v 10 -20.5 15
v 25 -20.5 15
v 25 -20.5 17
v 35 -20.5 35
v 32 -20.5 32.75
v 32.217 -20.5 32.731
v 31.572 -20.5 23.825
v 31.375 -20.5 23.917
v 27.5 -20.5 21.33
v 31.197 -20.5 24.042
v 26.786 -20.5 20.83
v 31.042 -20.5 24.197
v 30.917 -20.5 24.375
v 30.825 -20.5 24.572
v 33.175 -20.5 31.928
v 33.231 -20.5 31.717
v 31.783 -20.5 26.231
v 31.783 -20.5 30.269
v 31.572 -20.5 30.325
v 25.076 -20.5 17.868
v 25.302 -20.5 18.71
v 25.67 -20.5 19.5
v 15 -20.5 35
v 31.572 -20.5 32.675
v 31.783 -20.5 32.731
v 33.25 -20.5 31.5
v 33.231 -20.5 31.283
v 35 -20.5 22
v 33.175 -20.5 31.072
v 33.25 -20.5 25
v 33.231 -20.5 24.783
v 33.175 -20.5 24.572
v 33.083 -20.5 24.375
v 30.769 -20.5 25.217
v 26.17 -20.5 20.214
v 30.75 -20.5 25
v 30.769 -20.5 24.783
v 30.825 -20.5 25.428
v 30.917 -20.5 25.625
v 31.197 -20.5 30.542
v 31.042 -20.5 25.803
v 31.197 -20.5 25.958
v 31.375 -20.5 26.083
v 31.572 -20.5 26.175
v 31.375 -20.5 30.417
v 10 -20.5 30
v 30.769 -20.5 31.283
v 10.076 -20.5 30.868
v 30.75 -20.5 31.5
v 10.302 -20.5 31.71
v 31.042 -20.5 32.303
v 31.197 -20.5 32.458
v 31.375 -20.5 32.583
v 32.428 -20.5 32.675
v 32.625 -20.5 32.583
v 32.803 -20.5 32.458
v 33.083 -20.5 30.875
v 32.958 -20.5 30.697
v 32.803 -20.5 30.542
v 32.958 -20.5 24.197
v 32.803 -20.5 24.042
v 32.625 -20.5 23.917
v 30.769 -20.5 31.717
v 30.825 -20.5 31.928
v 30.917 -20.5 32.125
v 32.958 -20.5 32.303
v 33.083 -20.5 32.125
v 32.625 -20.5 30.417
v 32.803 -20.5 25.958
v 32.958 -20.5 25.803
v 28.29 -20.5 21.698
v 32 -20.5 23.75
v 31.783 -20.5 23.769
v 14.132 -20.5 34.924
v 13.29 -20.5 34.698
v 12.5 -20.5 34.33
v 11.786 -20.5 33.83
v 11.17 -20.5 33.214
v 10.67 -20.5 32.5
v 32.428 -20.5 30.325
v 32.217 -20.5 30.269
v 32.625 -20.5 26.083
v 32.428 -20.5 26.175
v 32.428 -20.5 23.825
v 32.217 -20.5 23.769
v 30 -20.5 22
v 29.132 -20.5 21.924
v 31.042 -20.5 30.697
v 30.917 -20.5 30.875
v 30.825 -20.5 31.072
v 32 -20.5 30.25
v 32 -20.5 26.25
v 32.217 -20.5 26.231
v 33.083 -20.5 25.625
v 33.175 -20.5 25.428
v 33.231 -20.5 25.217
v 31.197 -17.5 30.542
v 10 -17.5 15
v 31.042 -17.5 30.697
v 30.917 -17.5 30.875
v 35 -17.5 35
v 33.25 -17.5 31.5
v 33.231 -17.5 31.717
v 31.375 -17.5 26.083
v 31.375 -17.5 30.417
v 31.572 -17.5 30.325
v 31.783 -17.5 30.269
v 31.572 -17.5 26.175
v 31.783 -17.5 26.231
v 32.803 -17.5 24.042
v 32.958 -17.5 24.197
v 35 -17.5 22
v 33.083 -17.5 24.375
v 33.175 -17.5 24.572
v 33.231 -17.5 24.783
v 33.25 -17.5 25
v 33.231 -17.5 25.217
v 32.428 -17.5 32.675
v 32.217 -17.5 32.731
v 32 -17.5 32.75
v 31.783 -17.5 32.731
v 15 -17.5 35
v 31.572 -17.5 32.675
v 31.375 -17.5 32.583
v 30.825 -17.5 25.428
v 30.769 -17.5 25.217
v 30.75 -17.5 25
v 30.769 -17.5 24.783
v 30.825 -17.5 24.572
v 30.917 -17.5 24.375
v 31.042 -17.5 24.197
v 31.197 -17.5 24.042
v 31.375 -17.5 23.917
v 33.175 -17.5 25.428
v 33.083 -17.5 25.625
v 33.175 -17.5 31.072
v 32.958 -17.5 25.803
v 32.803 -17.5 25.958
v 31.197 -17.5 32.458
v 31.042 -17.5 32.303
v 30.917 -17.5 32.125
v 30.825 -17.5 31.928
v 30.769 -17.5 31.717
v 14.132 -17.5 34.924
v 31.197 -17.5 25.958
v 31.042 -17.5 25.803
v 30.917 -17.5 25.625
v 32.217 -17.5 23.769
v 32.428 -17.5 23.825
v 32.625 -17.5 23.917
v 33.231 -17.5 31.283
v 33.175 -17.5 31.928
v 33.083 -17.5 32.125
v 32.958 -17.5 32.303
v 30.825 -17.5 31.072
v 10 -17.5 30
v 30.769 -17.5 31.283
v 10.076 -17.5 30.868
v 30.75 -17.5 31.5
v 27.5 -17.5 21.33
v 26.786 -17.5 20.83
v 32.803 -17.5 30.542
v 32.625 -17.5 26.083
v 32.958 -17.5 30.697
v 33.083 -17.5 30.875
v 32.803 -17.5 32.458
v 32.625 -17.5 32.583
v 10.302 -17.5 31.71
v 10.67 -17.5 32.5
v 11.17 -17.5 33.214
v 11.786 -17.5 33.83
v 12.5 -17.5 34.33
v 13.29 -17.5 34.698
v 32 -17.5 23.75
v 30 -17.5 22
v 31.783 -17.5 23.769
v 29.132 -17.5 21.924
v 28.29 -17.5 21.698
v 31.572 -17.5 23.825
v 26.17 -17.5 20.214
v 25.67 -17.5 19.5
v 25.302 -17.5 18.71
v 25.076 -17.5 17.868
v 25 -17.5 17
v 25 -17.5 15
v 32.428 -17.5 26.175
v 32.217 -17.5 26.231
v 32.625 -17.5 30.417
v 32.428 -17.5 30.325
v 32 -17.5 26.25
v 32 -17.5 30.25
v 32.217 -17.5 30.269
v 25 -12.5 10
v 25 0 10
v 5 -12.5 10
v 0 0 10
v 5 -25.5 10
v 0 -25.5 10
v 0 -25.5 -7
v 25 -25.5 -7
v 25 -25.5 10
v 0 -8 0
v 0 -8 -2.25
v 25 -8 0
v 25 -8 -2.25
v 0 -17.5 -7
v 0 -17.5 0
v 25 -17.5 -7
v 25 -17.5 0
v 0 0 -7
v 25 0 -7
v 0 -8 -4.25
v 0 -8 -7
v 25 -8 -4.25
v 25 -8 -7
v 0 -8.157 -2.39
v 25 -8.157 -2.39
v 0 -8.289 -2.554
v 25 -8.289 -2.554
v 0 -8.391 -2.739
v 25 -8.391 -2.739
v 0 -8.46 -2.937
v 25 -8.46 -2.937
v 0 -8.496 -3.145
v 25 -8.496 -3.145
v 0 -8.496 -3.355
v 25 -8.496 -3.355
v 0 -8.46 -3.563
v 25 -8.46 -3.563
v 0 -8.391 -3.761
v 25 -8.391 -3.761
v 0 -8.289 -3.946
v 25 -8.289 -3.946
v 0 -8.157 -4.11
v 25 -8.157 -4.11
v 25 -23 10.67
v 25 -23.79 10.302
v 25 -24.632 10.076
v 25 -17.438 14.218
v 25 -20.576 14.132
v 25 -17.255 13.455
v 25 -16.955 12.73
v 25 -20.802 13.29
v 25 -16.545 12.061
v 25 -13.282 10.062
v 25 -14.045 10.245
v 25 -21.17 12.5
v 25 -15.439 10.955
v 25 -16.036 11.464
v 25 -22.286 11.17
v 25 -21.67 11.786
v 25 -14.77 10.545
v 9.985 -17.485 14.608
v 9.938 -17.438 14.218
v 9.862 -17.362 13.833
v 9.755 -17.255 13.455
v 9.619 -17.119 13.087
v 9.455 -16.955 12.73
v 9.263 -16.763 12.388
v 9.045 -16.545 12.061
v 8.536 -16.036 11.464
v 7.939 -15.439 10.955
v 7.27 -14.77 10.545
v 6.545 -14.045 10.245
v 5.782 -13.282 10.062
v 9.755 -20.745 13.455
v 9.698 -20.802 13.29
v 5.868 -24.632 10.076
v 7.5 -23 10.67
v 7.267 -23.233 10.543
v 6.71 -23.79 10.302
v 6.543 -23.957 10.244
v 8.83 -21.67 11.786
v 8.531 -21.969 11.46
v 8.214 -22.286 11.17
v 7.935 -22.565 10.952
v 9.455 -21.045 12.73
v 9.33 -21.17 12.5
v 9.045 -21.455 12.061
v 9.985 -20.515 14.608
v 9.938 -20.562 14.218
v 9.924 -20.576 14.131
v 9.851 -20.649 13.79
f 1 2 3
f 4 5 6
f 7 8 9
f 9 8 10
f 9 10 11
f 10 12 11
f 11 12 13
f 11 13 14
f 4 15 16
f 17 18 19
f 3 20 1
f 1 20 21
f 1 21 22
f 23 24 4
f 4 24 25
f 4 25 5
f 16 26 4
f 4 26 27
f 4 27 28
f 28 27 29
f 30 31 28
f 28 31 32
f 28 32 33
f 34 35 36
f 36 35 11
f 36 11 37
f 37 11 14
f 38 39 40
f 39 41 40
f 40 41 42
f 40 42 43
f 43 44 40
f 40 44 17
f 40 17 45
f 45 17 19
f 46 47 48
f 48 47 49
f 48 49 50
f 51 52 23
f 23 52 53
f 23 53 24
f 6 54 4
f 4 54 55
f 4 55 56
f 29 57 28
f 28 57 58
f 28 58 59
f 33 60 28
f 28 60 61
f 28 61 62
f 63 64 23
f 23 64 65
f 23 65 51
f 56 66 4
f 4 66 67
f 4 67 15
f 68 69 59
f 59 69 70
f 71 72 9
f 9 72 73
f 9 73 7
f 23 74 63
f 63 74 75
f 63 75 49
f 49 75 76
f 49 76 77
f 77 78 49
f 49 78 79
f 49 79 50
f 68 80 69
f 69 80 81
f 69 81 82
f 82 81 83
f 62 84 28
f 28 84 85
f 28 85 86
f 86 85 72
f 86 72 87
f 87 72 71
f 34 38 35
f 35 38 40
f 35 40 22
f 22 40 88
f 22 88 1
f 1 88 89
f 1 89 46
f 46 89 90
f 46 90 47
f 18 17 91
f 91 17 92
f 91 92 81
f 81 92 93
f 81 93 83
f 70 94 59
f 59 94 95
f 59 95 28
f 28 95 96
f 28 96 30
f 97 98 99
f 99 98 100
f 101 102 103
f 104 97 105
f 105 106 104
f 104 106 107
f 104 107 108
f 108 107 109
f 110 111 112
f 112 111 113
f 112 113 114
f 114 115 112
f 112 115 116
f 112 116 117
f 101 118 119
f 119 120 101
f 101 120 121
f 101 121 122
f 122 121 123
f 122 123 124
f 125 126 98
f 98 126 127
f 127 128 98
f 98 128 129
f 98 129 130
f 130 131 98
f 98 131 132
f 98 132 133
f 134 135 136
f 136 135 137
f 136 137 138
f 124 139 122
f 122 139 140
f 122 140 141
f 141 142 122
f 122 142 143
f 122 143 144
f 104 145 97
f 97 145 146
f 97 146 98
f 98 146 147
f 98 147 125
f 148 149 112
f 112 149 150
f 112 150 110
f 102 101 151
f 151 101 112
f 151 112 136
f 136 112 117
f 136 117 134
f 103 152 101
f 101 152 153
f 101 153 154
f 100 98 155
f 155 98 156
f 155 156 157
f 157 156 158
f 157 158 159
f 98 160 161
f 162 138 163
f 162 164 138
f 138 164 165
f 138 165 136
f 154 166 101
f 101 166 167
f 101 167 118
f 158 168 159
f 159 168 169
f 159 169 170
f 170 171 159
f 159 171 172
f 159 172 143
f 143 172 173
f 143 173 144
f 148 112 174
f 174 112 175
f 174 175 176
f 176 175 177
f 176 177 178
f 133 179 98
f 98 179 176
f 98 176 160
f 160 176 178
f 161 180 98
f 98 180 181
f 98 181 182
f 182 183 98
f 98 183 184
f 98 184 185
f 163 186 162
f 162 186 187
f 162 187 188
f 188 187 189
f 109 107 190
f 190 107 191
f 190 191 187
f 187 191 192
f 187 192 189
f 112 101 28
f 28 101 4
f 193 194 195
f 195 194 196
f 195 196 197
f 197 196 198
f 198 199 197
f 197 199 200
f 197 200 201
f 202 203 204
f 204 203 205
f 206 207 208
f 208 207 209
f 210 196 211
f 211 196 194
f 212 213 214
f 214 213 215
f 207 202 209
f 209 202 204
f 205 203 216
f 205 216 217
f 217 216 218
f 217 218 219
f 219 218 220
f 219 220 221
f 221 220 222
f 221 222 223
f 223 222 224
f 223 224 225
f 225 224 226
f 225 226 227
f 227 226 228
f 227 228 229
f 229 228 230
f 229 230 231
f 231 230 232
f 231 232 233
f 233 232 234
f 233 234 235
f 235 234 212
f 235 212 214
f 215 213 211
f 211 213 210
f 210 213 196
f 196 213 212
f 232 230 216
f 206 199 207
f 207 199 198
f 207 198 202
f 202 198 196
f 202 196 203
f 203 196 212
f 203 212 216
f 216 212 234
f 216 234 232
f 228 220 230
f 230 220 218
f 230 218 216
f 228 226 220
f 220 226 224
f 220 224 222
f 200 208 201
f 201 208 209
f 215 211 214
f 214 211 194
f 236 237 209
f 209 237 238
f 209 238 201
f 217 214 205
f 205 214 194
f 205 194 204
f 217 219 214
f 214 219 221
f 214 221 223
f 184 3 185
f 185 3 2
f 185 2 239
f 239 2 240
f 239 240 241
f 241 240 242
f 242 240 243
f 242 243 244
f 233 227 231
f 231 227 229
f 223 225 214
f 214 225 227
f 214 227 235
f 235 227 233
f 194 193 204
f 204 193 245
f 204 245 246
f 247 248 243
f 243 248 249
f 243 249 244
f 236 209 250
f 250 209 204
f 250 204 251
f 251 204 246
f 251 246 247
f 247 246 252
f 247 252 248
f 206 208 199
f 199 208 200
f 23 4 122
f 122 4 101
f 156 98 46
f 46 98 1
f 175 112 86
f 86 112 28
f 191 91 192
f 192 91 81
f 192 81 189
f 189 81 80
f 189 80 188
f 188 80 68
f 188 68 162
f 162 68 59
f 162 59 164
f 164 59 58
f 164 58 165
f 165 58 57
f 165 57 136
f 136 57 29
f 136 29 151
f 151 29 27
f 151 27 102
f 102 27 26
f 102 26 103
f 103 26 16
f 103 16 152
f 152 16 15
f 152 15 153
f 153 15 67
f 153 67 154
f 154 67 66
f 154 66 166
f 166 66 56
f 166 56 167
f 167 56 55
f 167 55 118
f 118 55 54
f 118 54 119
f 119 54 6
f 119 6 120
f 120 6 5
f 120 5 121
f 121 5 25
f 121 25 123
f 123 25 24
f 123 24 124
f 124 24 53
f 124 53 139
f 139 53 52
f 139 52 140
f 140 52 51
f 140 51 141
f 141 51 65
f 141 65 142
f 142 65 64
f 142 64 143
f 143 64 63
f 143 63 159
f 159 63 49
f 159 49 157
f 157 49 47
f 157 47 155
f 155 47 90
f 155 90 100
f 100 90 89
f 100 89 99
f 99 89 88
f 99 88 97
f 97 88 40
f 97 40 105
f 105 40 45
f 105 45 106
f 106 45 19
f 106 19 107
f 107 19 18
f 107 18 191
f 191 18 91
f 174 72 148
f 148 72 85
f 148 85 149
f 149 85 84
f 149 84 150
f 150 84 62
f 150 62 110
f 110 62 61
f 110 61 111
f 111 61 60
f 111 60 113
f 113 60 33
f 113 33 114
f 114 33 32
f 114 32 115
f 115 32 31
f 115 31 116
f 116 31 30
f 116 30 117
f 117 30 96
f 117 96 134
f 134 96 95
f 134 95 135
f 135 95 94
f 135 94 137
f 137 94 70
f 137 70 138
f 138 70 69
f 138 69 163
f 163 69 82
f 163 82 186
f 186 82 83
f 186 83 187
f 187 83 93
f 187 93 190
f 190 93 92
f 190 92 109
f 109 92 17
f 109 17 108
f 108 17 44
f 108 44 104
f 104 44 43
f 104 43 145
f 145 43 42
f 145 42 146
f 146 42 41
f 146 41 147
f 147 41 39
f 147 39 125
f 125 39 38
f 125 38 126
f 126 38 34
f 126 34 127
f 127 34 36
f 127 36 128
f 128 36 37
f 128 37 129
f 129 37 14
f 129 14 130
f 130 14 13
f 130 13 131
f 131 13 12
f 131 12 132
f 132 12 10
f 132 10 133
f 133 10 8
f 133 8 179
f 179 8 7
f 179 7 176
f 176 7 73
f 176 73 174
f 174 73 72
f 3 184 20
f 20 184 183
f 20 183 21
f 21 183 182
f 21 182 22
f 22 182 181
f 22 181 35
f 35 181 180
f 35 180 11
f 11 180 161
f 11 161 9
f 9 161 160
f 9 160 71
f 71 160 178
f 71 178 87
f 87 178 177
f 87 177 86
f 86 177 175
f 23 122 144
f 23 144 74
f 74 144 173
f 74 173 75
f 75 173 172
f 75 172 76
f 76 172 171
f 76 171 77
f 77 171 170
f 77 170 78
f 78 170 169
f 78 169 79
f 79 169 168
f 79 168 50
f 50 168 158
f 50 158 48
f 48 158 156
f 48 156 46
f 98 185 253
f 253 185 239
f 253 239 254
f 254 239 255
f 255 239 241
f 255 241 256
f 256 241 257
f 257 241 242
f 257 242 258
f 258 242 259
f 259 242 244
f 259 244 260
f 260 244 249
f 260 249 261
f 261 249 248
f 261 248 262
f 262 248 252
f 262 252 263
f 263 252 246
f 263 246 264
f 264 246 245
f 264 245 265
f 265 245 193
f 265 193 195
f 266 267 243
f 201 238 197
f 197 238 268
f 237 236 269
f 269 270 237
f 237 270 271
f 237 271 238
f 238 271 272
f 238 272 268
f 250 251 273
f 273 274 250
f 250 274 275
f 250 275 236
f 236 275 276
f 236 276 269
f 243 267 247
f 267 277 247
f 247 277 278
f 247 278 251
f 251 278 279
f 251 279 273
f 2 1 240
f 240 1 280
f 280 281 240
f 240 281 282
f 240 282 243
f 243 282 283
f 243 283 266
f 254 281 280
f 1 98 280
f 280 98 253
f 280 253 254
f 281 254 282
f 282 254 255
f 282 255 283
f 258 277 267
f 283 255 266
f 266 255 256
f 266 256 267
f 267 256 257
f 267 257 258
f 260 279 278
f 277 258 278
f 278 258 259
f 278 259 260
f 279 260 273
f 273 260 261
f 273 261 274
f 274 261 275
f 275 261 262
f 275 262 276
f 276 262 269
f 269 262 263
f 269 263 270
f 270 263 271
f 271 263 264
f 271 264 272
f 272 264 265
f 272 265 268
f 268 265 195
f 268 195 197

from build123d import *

# Parameters (mm, degrees)
BOSS_EXTRUDE1_DEPTH = 50
SKETCH2_W           = 7
SKETCH2_H           = 8
BOSS_EXTRUDE2_DEPTH = 50
SKETCH2_3_W         = 7
SKETCH2_3_H         = 8
BOSS_EXTRUDE3_DEPTH = 18
SKETCH3_W           = 10
SKETCH3_H           = 63
SKETCH3_W_2         = 7
SKETCH3_H_2         = 8
BOSS_EXTRUDE4_DEPTH = 82
FILLET1_R           = 5
SKETCH4_W           = 49
SKETCH4_H           = 25.5
CUT_EXTRUDE1_DEPTH  = 63
SKETCH5_W           = 25.5
SKETCH5_H           = 10
SKETCH5_H_2         = 12
BOSS_EXTRUDE5_DEPTH = 49
CUT_EXTRUDE2_DEPTH  = 25.5
SKETCH6_R           = 1.75
CUT_EXTRUDE3_DEPTH  = 5
SKETCH6_6_R         = 0.75
CUT_EXTRUDE4_DEPTH  = 15
SKETCH8_W           = 18
SKETCH8_H           = 9.5
CUT_EXTRUDE5_DEPTH  = 40
SKETCH9_W           = 40
SKETCH9_H           = 25.5
CUT_EXTRUDE6_DEPTH  = 110.982953225
SKETCH10_W          = 32
SKETCH10_H          = 88.5
CUT_EXTRUDE7_DEPTH  = 111.174861016
SKETCH11_W          = 50
SKETCH11_H          = 63
CUT_EXTRUDE8_DEPTH  = 105.797423632
SKETCH12_W          = 25.5
SKETCH12_H          = 35
BOSS_EXTRUDE7_DEPTH = 10
SKETCH12_3_R        = 10
CUT_EXTRUDE9_DEPTH  = 107.716915248
SKETCH13_W          = 42.5
SKETCH13_H          = 88.5
CUT_EXTRUDE10_DEPTH = 25
SKETCH14_W          = 25
SKETCH14_H          = 28
CUT_EXTRUDE11_DEPTH = 96.433222727
SKETCH15_W          = 25
SKETCH15_H          = 60.5
CUT_EXTRUDE12_DEPTH = 71.25311381
SKETCH16_W          = 10
SKETCH16_H          = 35
CUT_EXTRUDE13_DEPTH = 68.633201906
SKETCH17_W          = 15
SKETCH17_H          = 35
BOSS_EXTRUDE8_DEPTH = 3
BOSS_EXTRUDE9_DEPTH = 10
SKETCH19_R          = 1.25
CUT_EXTRUDE14_DEPTH = 54.574714185
FILLET4_R           = 5


with BuildPart() as part:
    # Sketch1 → Boss-Extrude1 (new body)
    with BuildSketch(Plane.XY):
        with BuildLine():
            Line((-2.25, -8), (-4.25, -8))
            ThreePointArc((-4.25, -8), (-3.25, -8.5), (-2.25, -8))
        make_face()
        Polygon((10, -25.5), (10, 0), (0, 0), (-18, 0), (-18, -8), (0, -8), (0, -17.5), (-18, -17.5), (-18, -25.5), align=None)
    extrude(amount=BOSS_EXTRUDE1_DEPTH)

    # Sketch2 → Boss-Extrude2 (add)
    with BuildSketch(Plane(origin=(0, 0, 0), x_dir=(0, 0, -1), z_dir=(1, 0, 0))):
        Polygon((7, 0), (0, 0), (0, -8), (2.25, -8), (4.25, -8), (7, -8), align=None)
        Polygon((0, -8), (0, 0), (-10, 0), (-10, -25.5), (0, -25.5), (0, -17.5), align=None)
        with Locations((3.5, -21.5)):
            Rectangle(SKETCH2_W, SKETCH2_H)
        with BuildLine():
            Line((4.25, -8), (2.25, -8))
            ThreePointArc((2.25, -8), (3.25, -8.5), (4.25, -8))
        make_face()
    extrude(amount=BOSS_EXTRUDE2_DEPTH)

    # Sketch2<3> → Boss-Extrude3 (add)
    with BuildSketch(Plane(origin=(0, 0, 0), x_dir=(0, 0, -1), z_dir=(1, 0, 0))):
        Polygon((7, 0), (0, 0), (0, -8), (2.25, -8), (4.25, -8), (7, -8), align=None)
        with Locations((3.5, -21.5)):
            Rectangle(SKETCH2_3_W, SKETCH2_3_H)
    extrude(amount=-BOSS_EXTRUDE3_DEPTH)

    # Sketch3 → Boss-Extrude4 (add)
    with BuildSketch(Plane(origin=(50, 0, 0), x_dir=(0, 0, -1), z_dir=(1, 0, 0))):
        Polygon((32.5, -17.5), (7, -17.5), (7, -25.5), (0, -25.5), (0, -88.5), (32.5, -88.5), align=None)
        with Locations((-5, -57)):
            Rectangle(SKETCH3_W, SKETCH3_H)
        with Locations((3.5, -21.5)):
            Rectangle(SKETCH3_W_2, SKETCH3_H_2)
        with Locations((-5, -21.5)):
            Rectangle(SKETCH3_W, SKETCH3_H_2)
    extrude(amount=-BOSS_EXTRUDE4_DEPTH)

    # Fillet1
    fillet1_edges = [part.edges().sort_by_distance(p)[0] for p in [
        (-32, -17.5, -11.25),
        (-32, -53, -32.5),
        (9, -17.5, -32.5),
    ]]
    fillet(fillet1_edges, radius=FILLET1_R)

    # Sketch4 → Cut-Extrude1 (cut)
    with BuildSketch(Plane.XZ.offset(88.5)):
        with Locations((25.5, -2.75)):
            Rectangle(SKETCH4_W, SKETCH4_H)
    extrude(amount=-CUT_EXTRUDE1_DEPTH, mode=Mode.SUBTRACT)

    # Sketch5 → Boss-Extrude5 (add)
    with BuildSketch(Plane(origin=(50, 0, 0), x_dir=(0, 0, -1), z_dir=(1, 0, 0))):
        with Locations((2.75, -30.5)):
            Rectangle(SKETCH5_W, SKETCH5_H)
        with Locations((2.75, -82.5)):
            Rectangle(SKETCH5_W, SKETCH5_H_2)
    extrude(amount=-BOSS_EXTRUDE5_DEPTH)

    # Sketch7 → Cut-Extrude2 (cut)
    with BuildSketch(Plane.XY.offset(10)):
        Polygon((1, -35.5), (27, -35.5), (27, -25.5), (50, -25.5), (50, -88.5), (27, -88.5), (27, -76.5), (1, -76.5), align=None)
    extrude(amount=-CUT_EXTRUDE2_DEPTH, mode=Mode.SUBTRACT)

    # Sketch6 → Cut-Extrude3 (cut)
    with BuildSketch(Plane(origin=(27, 0, 0), x_dir=(0, 0, -1), z_dir=(1, 0, 0))):
        with Locations((0.25, -81.5)):
            Circle(SKETCH6_R)
        with Locations((10.25, -81.5)):
            Circle(SKETCH6_R)
        with Locations((10.25, -32.5)):
            Circle(SKETCH6_R)
        with Locations((0.25, -32.5)):
            Circle(SKETCH6_R)
    extrude(amount=-CUT_EXTRUDE3_DEPTH, mode=Mode.SUBTRACT)

    # Sketch6<6> → Cut-Extrude4 (cut)
    with BuildSketch(Plane(origin=(27, 0, 0), x_dir=(0, 0, -1), z_dir=(1, 0, 0))):
        with Locations((0.25, -81.5)):
            Circle(SKETCH6_6_R)
        with Locations((10.25, -81.5)):
            Circle(SKETCH6_6_R)
        with Locations((10.25, -32.5)):
            Circle(SKETCH6_6_R)
        with Locations((0.25, -32.5)):
            Circle(SKETCH6_6_R)
    extrude(amount=-CUT_EXTRUDE4_DEPTH, mode=Mode.SUBTRACT)

    # Sketch8 → Cut-Extrude5 (cut)
    with BuildSketch(Plane(origin=(0, 0, -7), x_dir=(-1, 0, 0), z_dir=(0, 0, -1))):
        with Locations((9, -12.75)):
            Rectangle(SKETCH8_W, SKETCH8_H)
    extrude(amount=-CUT_EXTRUDE5_DEPTH, mode=Mode.SUBTRACT)

    # Sketch9 → Cut-Extrude6 (cut, through all)
    with BuildSketch(Plane(origin=(10, 0, 0), x_dir=(0, 0, -1), z_dir=(1, 0, 0))):
        with Locations((-30, -12.75)):
            Rectangle(SKETCH9_W, SKETCH9_H)
    extrude(amount=-CUT_EXTRUDE6_DEPTH, mode=Mode.SUBTRACT)

    # Sketch10 → Cut-Extrude7 (cut, through all)
    with BuildSketch(Plane.XY.offset(10)):
        with Locations((-16, -44.25)):
            Rectangle(SKETCH10_W, SKETCH10_H)
    extrude(amount=-CUT_EXTRUDE7_DEPTH, mode=Mode.SUBTRACT)

    # Sketch11 → Cut-Extrude8 (cut, through all)
    with BuildSketch(Plane.XY.offset(-15.5)):
        with Locations((25, -57)):
            Rectangle(SKETCH11_W, SKETCH11_H)
    extrude(amount=CUT_EXTRUDE8_DEPTH, mode=Mode.SUBTRACT)

    # Sketch12 → Boss-Extrude7 (add)
    with BuildSketch(Plane.ZY):
        with Locations((-2.75, -43)):
            Rectangle(SKETCH12_W, SKETCH12_H)
    extrude(amount=-BOSS_EXTRUDE7_DEPTH)

    # Sketch12<3> → Cut-Extrude9 (cut, through all)
    with BuildSketch(Plane.ZY):
        with Locations(Location((-5.5, -42.5, 0), (0, 0, 270))):
            Circle(SKETCH12_3_R)
    extrude(amount=-CUT_EXTRUDE9_DEPTH, mode=Mode.SUBTRACT)

    # Sketch13 → Cut-Extrude10 (cut)
    with BuildSketch(Plane(origin=(50, 0, 0), x_dir=(0, 0, -1), z_dir=(1, 0, 0))):
        with Locations((11.25, -44.25)):
            Rectangle(SKETCH13_W, SKETCH13_H)
    extrude(amount=-CUT_EXTRUDE10_DEPTH, mode=Mode.SUBTRACT)

    # Sketch14 → Cut-Extrude11 (cut, through all)
    with BuildSketch(Plane.XY.offset(-15.5)):
        with Locations((12.5, -74.5)):
            Rectangle(SKETCH14_W, SKETCH14_H)
    extrude(amount=-CUT_EXTRUDE11_DEPTH, mode=Mode.SUBTRACT)

    # Sketch15 → Cut-Extrude12 (cut, through all)
    with BuildSketch(Plane(origin=(0, 0, -7), x_dir=(-1, 0, 0), z_dir=(0, 0, -1))):
        with Locations((-12.5, -30.25)):
            Rectangle(SKETCH15_W, SKETCH15_H)
    extrude(amount=CUT_EXTRUDE12_DEPTH, mode=Mode.SUBTRACT)

    # Sketch16 → Cut-Extrude13 (cut, through all)
    with BuildSketch(Plane(origin=(0, 0, -7), x_dir=(-1, 0, 0), z_dir=(0, 0, -1))):
        with Locations((-5, -43)):
            Rectangle(SKETCH16_W, SKETCH16_H)
    extrude(amount=-CUT_EXTRUDE13_DEPTH, mode=Mode.SUBTRACT)

    # Sketch17 → Boss-Extrude8 (add)
    with BuildSketch(Plane(origin=(0, -17.5, 0), x_dir=(1, 0, 0), z_dir=(0, 1, 0))):
        with Locations((17.5, -17.5)):
            Rectangle(SKETCH17_W, SKETCH17_H)
    extrude(amount=-BOSS_EXTRUDE8_DEPTH)

    # Sketch18 → Boss-Extrude9 (add)
    with BuildSketch(Plane(origin=(25, 0, 0), x_dir=(0, 0, -1), z_dir=(1, 0, 0))):
        Polygon((-10, -17.5), (-35, -17.5), (-35, -20.5), (-10, -20.5), (0, -20.5), (0, -17.5), align=None)
    extrude(amount=BOSS_EXTRUDE9_DEPTH)

    # Sketch19 → Cut-Extrude14 (cut, through all)
    with BuildSketch(Plane.XZ.offset(20.5)):
        Polygon((35, 0), (35, 22), (25, 22), (25, 10), (25, 0), align=None)
        with Locations(Location((32, 25, 0), (0, 0, 270))):
            Circle(SKETCH19_R)
        with Locations(Location((32, 31.5, 0), (0, 0, 270))):
            Circle(SKETCH19_R)
    extrude(amount=-CUT_EXTRUDE14_DEPTH, mode=Mode.SUBTRACT)

    # Fillet4
    fillet4_edges = [part.edges().sort_by_distance(p)[0] for p in [
        (10, -19, 10),
        (17.5, -20.5, 10),
        (10, -19, 35),
        (17.5, -17.5, 10),
        (25, -19, 22),
    ]]
    fillet(fillet4_edges, radius=FILLET4_R - 0.0001)  # a hair under: the kernel refuses the full size


solid = part.part
